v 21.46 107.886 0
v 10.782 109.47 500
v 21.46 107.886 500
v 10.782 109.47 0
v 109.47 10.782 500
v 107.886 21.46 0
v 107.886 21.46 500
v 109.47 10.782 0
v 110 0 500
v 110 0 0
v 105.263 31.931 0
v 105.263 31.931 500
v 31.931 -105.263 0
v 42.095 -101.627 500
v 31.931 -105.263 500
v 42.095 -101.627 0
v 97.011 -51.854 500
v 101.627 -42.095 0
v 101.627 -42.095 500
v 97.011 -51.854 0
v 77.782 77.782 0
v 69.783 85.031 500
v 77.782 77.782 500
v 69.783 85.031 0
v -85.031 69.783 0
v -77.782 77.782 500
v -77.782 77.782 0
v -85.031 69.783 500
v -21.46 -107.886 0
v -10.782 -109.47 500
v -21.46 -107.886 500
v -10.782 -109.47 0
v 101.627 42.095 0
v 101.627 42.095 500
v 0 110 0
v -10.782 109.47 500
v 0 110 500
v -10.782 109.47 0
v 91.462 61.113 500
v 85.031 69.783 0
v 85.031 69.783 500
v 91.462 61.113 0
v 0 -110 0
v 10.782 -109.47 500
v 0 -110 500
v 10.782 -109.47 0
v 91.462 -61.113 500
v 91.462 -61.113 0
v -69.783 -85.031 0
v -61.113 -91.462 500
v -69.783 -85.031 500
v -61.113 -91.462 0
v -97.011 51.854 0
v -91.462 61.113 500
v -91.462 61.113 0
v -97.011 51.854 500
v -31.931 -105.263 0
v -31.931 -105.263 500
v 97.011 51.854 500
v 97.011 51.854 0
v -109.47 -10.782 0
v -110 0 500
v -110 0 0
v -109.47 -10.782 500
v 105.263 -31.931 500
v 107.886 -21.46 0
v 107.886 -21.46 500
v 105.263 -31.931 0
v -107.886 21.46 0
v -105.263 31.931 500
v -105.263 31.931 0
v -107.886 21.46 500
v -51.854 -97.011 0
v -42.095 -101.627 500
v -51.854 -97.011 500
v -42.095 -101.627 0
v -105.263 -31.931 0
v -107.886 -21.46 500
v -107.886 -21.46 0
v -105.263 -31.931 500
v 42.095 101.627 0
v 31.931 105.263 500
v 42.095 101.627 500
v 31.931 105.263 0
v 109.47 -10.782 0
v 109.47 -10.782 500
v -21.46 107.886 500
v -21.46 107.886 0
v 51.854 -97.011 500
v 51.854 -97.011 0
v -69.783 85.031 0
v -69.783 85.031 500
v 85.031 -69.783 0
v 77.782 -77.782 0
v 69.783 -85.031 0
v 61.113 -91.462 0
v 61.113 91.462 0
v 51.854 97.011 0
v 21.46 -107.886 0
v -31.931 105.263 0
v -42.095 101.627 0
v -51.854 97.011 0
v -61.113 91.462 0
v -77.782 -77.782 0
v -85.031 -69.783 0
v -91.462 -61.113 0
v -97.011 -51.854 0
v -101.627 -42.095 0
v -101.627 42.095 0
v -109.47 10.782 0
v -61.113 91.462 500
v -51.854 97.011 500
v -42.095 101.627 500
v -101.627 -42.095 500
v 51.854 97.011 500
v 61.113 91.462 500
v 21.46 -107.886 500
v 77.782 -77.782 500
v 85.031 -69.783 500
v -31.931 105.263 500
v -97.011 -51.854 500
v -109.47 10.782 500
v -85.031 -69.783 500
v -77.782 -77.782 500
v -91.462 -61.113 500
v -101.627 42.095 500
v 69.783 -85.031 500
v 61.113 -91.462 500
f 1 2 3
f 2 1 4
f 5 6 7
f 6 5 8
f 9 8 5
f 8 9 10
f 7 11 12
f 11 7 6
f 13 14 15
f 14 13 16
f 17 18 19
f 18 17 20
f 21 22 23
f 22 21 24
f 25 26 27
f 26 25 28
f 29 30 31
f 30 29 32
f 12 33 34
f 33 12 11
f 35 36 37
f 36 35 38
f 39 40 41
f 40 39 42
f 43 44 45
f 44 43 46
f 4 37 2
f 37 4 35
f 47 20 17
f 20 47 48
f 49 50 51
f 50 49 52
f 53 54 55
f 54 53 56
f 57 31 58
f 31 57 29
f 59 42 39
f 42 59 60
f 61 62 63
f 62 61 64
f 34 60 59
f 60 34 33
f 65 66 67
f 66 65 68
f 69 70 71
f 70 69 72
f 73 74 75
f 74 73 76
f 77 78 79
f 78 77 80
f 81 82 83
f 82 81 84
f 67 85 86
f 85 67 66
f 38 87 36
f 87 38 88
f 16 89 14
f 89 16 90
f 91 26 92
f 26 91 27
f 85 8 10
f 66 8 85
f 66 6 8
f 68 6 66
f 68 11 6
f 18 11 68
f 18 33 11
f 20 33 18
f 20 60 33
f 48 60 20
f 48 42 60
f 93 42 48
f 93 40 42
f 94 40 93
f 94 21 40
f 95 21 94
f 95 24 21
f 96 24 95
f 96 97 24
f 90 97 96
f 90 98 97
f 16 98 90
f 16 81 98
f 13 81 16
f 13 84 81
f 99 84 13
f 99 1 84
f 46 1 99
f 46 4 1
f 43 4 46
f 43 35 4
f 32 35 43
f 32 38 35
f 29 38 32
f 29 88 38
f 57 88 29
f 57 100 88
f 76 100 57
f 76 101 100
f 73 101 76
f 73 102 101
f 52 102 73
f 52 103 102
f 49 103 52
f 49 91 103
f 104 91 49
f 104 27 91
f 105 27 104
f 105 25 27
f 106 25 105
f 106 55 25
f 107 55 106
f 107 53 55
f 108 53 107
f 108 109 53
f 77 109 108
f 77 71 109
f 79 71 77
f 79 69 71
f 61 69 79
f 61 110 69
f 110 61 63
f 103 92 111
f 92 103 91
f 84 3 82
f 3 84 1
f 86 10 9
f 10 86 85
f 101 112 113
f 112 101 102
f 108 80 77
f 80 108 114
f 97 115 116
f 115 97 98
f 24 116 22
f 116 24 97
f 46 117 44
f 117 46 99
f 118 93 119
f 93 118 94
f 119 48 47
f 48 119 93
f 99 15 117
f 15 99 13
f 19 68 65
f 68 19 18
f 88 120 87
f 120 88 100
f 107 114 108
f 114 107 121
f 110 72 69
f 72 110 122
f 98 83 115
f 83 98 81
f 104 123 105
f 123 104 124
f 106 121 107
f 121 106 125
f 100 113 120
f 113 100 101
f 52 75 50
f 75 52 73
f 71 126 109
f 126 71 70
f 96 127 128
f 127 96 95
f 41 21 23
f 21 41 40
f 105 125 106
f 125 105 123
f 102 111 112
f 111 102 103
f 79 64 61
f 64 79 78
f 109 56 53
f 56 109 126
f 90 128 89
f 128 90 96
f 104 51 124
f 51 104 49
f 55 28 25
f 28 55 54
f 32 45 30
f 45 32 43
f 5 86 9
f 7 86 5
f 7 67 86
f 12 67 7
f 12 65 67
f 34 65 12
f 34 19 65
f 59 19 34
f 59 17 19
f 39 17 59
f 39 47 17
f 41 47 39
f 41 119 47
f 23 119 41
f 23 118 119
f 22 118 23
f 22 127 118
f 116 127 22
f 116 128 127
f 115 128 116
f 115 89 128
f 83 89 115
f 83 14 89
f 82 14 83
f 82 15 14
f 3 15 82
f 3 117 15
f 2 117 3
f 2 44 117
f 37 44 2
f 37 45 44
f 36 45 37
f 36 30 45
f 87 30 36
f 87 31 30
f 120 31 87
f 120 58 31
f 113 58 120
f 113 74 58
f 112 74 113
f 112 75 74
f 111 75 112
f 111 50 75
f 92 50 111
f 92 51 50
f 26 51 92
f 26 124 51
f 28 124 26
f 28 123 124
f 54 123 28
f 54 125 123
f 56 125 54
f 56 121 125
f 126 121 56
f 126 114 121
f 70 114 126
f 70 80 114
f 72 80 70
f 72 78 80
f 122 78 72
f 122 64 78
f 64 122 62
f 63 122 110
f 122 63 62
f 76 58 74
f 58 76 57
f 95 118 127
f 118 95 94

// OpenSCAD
// Definir los parámetros
r = 100;    // Radio interno en mm
h = 500;    // Altura del cilindro en mm
e = 10;     // Espesor de la pared en mm

// Crear el cilindro exterior e interior
cylinder(h = h, r = r + e, $fn = 64);
cylinder(h = h, r = r, $fn = 64);

// Booleanas para crear el tanque hueco
difference() {
    cylinder(h = h, r = r + e, $fn = 64);
    cylinder(h = h, r = r, $fn = 64);
}
